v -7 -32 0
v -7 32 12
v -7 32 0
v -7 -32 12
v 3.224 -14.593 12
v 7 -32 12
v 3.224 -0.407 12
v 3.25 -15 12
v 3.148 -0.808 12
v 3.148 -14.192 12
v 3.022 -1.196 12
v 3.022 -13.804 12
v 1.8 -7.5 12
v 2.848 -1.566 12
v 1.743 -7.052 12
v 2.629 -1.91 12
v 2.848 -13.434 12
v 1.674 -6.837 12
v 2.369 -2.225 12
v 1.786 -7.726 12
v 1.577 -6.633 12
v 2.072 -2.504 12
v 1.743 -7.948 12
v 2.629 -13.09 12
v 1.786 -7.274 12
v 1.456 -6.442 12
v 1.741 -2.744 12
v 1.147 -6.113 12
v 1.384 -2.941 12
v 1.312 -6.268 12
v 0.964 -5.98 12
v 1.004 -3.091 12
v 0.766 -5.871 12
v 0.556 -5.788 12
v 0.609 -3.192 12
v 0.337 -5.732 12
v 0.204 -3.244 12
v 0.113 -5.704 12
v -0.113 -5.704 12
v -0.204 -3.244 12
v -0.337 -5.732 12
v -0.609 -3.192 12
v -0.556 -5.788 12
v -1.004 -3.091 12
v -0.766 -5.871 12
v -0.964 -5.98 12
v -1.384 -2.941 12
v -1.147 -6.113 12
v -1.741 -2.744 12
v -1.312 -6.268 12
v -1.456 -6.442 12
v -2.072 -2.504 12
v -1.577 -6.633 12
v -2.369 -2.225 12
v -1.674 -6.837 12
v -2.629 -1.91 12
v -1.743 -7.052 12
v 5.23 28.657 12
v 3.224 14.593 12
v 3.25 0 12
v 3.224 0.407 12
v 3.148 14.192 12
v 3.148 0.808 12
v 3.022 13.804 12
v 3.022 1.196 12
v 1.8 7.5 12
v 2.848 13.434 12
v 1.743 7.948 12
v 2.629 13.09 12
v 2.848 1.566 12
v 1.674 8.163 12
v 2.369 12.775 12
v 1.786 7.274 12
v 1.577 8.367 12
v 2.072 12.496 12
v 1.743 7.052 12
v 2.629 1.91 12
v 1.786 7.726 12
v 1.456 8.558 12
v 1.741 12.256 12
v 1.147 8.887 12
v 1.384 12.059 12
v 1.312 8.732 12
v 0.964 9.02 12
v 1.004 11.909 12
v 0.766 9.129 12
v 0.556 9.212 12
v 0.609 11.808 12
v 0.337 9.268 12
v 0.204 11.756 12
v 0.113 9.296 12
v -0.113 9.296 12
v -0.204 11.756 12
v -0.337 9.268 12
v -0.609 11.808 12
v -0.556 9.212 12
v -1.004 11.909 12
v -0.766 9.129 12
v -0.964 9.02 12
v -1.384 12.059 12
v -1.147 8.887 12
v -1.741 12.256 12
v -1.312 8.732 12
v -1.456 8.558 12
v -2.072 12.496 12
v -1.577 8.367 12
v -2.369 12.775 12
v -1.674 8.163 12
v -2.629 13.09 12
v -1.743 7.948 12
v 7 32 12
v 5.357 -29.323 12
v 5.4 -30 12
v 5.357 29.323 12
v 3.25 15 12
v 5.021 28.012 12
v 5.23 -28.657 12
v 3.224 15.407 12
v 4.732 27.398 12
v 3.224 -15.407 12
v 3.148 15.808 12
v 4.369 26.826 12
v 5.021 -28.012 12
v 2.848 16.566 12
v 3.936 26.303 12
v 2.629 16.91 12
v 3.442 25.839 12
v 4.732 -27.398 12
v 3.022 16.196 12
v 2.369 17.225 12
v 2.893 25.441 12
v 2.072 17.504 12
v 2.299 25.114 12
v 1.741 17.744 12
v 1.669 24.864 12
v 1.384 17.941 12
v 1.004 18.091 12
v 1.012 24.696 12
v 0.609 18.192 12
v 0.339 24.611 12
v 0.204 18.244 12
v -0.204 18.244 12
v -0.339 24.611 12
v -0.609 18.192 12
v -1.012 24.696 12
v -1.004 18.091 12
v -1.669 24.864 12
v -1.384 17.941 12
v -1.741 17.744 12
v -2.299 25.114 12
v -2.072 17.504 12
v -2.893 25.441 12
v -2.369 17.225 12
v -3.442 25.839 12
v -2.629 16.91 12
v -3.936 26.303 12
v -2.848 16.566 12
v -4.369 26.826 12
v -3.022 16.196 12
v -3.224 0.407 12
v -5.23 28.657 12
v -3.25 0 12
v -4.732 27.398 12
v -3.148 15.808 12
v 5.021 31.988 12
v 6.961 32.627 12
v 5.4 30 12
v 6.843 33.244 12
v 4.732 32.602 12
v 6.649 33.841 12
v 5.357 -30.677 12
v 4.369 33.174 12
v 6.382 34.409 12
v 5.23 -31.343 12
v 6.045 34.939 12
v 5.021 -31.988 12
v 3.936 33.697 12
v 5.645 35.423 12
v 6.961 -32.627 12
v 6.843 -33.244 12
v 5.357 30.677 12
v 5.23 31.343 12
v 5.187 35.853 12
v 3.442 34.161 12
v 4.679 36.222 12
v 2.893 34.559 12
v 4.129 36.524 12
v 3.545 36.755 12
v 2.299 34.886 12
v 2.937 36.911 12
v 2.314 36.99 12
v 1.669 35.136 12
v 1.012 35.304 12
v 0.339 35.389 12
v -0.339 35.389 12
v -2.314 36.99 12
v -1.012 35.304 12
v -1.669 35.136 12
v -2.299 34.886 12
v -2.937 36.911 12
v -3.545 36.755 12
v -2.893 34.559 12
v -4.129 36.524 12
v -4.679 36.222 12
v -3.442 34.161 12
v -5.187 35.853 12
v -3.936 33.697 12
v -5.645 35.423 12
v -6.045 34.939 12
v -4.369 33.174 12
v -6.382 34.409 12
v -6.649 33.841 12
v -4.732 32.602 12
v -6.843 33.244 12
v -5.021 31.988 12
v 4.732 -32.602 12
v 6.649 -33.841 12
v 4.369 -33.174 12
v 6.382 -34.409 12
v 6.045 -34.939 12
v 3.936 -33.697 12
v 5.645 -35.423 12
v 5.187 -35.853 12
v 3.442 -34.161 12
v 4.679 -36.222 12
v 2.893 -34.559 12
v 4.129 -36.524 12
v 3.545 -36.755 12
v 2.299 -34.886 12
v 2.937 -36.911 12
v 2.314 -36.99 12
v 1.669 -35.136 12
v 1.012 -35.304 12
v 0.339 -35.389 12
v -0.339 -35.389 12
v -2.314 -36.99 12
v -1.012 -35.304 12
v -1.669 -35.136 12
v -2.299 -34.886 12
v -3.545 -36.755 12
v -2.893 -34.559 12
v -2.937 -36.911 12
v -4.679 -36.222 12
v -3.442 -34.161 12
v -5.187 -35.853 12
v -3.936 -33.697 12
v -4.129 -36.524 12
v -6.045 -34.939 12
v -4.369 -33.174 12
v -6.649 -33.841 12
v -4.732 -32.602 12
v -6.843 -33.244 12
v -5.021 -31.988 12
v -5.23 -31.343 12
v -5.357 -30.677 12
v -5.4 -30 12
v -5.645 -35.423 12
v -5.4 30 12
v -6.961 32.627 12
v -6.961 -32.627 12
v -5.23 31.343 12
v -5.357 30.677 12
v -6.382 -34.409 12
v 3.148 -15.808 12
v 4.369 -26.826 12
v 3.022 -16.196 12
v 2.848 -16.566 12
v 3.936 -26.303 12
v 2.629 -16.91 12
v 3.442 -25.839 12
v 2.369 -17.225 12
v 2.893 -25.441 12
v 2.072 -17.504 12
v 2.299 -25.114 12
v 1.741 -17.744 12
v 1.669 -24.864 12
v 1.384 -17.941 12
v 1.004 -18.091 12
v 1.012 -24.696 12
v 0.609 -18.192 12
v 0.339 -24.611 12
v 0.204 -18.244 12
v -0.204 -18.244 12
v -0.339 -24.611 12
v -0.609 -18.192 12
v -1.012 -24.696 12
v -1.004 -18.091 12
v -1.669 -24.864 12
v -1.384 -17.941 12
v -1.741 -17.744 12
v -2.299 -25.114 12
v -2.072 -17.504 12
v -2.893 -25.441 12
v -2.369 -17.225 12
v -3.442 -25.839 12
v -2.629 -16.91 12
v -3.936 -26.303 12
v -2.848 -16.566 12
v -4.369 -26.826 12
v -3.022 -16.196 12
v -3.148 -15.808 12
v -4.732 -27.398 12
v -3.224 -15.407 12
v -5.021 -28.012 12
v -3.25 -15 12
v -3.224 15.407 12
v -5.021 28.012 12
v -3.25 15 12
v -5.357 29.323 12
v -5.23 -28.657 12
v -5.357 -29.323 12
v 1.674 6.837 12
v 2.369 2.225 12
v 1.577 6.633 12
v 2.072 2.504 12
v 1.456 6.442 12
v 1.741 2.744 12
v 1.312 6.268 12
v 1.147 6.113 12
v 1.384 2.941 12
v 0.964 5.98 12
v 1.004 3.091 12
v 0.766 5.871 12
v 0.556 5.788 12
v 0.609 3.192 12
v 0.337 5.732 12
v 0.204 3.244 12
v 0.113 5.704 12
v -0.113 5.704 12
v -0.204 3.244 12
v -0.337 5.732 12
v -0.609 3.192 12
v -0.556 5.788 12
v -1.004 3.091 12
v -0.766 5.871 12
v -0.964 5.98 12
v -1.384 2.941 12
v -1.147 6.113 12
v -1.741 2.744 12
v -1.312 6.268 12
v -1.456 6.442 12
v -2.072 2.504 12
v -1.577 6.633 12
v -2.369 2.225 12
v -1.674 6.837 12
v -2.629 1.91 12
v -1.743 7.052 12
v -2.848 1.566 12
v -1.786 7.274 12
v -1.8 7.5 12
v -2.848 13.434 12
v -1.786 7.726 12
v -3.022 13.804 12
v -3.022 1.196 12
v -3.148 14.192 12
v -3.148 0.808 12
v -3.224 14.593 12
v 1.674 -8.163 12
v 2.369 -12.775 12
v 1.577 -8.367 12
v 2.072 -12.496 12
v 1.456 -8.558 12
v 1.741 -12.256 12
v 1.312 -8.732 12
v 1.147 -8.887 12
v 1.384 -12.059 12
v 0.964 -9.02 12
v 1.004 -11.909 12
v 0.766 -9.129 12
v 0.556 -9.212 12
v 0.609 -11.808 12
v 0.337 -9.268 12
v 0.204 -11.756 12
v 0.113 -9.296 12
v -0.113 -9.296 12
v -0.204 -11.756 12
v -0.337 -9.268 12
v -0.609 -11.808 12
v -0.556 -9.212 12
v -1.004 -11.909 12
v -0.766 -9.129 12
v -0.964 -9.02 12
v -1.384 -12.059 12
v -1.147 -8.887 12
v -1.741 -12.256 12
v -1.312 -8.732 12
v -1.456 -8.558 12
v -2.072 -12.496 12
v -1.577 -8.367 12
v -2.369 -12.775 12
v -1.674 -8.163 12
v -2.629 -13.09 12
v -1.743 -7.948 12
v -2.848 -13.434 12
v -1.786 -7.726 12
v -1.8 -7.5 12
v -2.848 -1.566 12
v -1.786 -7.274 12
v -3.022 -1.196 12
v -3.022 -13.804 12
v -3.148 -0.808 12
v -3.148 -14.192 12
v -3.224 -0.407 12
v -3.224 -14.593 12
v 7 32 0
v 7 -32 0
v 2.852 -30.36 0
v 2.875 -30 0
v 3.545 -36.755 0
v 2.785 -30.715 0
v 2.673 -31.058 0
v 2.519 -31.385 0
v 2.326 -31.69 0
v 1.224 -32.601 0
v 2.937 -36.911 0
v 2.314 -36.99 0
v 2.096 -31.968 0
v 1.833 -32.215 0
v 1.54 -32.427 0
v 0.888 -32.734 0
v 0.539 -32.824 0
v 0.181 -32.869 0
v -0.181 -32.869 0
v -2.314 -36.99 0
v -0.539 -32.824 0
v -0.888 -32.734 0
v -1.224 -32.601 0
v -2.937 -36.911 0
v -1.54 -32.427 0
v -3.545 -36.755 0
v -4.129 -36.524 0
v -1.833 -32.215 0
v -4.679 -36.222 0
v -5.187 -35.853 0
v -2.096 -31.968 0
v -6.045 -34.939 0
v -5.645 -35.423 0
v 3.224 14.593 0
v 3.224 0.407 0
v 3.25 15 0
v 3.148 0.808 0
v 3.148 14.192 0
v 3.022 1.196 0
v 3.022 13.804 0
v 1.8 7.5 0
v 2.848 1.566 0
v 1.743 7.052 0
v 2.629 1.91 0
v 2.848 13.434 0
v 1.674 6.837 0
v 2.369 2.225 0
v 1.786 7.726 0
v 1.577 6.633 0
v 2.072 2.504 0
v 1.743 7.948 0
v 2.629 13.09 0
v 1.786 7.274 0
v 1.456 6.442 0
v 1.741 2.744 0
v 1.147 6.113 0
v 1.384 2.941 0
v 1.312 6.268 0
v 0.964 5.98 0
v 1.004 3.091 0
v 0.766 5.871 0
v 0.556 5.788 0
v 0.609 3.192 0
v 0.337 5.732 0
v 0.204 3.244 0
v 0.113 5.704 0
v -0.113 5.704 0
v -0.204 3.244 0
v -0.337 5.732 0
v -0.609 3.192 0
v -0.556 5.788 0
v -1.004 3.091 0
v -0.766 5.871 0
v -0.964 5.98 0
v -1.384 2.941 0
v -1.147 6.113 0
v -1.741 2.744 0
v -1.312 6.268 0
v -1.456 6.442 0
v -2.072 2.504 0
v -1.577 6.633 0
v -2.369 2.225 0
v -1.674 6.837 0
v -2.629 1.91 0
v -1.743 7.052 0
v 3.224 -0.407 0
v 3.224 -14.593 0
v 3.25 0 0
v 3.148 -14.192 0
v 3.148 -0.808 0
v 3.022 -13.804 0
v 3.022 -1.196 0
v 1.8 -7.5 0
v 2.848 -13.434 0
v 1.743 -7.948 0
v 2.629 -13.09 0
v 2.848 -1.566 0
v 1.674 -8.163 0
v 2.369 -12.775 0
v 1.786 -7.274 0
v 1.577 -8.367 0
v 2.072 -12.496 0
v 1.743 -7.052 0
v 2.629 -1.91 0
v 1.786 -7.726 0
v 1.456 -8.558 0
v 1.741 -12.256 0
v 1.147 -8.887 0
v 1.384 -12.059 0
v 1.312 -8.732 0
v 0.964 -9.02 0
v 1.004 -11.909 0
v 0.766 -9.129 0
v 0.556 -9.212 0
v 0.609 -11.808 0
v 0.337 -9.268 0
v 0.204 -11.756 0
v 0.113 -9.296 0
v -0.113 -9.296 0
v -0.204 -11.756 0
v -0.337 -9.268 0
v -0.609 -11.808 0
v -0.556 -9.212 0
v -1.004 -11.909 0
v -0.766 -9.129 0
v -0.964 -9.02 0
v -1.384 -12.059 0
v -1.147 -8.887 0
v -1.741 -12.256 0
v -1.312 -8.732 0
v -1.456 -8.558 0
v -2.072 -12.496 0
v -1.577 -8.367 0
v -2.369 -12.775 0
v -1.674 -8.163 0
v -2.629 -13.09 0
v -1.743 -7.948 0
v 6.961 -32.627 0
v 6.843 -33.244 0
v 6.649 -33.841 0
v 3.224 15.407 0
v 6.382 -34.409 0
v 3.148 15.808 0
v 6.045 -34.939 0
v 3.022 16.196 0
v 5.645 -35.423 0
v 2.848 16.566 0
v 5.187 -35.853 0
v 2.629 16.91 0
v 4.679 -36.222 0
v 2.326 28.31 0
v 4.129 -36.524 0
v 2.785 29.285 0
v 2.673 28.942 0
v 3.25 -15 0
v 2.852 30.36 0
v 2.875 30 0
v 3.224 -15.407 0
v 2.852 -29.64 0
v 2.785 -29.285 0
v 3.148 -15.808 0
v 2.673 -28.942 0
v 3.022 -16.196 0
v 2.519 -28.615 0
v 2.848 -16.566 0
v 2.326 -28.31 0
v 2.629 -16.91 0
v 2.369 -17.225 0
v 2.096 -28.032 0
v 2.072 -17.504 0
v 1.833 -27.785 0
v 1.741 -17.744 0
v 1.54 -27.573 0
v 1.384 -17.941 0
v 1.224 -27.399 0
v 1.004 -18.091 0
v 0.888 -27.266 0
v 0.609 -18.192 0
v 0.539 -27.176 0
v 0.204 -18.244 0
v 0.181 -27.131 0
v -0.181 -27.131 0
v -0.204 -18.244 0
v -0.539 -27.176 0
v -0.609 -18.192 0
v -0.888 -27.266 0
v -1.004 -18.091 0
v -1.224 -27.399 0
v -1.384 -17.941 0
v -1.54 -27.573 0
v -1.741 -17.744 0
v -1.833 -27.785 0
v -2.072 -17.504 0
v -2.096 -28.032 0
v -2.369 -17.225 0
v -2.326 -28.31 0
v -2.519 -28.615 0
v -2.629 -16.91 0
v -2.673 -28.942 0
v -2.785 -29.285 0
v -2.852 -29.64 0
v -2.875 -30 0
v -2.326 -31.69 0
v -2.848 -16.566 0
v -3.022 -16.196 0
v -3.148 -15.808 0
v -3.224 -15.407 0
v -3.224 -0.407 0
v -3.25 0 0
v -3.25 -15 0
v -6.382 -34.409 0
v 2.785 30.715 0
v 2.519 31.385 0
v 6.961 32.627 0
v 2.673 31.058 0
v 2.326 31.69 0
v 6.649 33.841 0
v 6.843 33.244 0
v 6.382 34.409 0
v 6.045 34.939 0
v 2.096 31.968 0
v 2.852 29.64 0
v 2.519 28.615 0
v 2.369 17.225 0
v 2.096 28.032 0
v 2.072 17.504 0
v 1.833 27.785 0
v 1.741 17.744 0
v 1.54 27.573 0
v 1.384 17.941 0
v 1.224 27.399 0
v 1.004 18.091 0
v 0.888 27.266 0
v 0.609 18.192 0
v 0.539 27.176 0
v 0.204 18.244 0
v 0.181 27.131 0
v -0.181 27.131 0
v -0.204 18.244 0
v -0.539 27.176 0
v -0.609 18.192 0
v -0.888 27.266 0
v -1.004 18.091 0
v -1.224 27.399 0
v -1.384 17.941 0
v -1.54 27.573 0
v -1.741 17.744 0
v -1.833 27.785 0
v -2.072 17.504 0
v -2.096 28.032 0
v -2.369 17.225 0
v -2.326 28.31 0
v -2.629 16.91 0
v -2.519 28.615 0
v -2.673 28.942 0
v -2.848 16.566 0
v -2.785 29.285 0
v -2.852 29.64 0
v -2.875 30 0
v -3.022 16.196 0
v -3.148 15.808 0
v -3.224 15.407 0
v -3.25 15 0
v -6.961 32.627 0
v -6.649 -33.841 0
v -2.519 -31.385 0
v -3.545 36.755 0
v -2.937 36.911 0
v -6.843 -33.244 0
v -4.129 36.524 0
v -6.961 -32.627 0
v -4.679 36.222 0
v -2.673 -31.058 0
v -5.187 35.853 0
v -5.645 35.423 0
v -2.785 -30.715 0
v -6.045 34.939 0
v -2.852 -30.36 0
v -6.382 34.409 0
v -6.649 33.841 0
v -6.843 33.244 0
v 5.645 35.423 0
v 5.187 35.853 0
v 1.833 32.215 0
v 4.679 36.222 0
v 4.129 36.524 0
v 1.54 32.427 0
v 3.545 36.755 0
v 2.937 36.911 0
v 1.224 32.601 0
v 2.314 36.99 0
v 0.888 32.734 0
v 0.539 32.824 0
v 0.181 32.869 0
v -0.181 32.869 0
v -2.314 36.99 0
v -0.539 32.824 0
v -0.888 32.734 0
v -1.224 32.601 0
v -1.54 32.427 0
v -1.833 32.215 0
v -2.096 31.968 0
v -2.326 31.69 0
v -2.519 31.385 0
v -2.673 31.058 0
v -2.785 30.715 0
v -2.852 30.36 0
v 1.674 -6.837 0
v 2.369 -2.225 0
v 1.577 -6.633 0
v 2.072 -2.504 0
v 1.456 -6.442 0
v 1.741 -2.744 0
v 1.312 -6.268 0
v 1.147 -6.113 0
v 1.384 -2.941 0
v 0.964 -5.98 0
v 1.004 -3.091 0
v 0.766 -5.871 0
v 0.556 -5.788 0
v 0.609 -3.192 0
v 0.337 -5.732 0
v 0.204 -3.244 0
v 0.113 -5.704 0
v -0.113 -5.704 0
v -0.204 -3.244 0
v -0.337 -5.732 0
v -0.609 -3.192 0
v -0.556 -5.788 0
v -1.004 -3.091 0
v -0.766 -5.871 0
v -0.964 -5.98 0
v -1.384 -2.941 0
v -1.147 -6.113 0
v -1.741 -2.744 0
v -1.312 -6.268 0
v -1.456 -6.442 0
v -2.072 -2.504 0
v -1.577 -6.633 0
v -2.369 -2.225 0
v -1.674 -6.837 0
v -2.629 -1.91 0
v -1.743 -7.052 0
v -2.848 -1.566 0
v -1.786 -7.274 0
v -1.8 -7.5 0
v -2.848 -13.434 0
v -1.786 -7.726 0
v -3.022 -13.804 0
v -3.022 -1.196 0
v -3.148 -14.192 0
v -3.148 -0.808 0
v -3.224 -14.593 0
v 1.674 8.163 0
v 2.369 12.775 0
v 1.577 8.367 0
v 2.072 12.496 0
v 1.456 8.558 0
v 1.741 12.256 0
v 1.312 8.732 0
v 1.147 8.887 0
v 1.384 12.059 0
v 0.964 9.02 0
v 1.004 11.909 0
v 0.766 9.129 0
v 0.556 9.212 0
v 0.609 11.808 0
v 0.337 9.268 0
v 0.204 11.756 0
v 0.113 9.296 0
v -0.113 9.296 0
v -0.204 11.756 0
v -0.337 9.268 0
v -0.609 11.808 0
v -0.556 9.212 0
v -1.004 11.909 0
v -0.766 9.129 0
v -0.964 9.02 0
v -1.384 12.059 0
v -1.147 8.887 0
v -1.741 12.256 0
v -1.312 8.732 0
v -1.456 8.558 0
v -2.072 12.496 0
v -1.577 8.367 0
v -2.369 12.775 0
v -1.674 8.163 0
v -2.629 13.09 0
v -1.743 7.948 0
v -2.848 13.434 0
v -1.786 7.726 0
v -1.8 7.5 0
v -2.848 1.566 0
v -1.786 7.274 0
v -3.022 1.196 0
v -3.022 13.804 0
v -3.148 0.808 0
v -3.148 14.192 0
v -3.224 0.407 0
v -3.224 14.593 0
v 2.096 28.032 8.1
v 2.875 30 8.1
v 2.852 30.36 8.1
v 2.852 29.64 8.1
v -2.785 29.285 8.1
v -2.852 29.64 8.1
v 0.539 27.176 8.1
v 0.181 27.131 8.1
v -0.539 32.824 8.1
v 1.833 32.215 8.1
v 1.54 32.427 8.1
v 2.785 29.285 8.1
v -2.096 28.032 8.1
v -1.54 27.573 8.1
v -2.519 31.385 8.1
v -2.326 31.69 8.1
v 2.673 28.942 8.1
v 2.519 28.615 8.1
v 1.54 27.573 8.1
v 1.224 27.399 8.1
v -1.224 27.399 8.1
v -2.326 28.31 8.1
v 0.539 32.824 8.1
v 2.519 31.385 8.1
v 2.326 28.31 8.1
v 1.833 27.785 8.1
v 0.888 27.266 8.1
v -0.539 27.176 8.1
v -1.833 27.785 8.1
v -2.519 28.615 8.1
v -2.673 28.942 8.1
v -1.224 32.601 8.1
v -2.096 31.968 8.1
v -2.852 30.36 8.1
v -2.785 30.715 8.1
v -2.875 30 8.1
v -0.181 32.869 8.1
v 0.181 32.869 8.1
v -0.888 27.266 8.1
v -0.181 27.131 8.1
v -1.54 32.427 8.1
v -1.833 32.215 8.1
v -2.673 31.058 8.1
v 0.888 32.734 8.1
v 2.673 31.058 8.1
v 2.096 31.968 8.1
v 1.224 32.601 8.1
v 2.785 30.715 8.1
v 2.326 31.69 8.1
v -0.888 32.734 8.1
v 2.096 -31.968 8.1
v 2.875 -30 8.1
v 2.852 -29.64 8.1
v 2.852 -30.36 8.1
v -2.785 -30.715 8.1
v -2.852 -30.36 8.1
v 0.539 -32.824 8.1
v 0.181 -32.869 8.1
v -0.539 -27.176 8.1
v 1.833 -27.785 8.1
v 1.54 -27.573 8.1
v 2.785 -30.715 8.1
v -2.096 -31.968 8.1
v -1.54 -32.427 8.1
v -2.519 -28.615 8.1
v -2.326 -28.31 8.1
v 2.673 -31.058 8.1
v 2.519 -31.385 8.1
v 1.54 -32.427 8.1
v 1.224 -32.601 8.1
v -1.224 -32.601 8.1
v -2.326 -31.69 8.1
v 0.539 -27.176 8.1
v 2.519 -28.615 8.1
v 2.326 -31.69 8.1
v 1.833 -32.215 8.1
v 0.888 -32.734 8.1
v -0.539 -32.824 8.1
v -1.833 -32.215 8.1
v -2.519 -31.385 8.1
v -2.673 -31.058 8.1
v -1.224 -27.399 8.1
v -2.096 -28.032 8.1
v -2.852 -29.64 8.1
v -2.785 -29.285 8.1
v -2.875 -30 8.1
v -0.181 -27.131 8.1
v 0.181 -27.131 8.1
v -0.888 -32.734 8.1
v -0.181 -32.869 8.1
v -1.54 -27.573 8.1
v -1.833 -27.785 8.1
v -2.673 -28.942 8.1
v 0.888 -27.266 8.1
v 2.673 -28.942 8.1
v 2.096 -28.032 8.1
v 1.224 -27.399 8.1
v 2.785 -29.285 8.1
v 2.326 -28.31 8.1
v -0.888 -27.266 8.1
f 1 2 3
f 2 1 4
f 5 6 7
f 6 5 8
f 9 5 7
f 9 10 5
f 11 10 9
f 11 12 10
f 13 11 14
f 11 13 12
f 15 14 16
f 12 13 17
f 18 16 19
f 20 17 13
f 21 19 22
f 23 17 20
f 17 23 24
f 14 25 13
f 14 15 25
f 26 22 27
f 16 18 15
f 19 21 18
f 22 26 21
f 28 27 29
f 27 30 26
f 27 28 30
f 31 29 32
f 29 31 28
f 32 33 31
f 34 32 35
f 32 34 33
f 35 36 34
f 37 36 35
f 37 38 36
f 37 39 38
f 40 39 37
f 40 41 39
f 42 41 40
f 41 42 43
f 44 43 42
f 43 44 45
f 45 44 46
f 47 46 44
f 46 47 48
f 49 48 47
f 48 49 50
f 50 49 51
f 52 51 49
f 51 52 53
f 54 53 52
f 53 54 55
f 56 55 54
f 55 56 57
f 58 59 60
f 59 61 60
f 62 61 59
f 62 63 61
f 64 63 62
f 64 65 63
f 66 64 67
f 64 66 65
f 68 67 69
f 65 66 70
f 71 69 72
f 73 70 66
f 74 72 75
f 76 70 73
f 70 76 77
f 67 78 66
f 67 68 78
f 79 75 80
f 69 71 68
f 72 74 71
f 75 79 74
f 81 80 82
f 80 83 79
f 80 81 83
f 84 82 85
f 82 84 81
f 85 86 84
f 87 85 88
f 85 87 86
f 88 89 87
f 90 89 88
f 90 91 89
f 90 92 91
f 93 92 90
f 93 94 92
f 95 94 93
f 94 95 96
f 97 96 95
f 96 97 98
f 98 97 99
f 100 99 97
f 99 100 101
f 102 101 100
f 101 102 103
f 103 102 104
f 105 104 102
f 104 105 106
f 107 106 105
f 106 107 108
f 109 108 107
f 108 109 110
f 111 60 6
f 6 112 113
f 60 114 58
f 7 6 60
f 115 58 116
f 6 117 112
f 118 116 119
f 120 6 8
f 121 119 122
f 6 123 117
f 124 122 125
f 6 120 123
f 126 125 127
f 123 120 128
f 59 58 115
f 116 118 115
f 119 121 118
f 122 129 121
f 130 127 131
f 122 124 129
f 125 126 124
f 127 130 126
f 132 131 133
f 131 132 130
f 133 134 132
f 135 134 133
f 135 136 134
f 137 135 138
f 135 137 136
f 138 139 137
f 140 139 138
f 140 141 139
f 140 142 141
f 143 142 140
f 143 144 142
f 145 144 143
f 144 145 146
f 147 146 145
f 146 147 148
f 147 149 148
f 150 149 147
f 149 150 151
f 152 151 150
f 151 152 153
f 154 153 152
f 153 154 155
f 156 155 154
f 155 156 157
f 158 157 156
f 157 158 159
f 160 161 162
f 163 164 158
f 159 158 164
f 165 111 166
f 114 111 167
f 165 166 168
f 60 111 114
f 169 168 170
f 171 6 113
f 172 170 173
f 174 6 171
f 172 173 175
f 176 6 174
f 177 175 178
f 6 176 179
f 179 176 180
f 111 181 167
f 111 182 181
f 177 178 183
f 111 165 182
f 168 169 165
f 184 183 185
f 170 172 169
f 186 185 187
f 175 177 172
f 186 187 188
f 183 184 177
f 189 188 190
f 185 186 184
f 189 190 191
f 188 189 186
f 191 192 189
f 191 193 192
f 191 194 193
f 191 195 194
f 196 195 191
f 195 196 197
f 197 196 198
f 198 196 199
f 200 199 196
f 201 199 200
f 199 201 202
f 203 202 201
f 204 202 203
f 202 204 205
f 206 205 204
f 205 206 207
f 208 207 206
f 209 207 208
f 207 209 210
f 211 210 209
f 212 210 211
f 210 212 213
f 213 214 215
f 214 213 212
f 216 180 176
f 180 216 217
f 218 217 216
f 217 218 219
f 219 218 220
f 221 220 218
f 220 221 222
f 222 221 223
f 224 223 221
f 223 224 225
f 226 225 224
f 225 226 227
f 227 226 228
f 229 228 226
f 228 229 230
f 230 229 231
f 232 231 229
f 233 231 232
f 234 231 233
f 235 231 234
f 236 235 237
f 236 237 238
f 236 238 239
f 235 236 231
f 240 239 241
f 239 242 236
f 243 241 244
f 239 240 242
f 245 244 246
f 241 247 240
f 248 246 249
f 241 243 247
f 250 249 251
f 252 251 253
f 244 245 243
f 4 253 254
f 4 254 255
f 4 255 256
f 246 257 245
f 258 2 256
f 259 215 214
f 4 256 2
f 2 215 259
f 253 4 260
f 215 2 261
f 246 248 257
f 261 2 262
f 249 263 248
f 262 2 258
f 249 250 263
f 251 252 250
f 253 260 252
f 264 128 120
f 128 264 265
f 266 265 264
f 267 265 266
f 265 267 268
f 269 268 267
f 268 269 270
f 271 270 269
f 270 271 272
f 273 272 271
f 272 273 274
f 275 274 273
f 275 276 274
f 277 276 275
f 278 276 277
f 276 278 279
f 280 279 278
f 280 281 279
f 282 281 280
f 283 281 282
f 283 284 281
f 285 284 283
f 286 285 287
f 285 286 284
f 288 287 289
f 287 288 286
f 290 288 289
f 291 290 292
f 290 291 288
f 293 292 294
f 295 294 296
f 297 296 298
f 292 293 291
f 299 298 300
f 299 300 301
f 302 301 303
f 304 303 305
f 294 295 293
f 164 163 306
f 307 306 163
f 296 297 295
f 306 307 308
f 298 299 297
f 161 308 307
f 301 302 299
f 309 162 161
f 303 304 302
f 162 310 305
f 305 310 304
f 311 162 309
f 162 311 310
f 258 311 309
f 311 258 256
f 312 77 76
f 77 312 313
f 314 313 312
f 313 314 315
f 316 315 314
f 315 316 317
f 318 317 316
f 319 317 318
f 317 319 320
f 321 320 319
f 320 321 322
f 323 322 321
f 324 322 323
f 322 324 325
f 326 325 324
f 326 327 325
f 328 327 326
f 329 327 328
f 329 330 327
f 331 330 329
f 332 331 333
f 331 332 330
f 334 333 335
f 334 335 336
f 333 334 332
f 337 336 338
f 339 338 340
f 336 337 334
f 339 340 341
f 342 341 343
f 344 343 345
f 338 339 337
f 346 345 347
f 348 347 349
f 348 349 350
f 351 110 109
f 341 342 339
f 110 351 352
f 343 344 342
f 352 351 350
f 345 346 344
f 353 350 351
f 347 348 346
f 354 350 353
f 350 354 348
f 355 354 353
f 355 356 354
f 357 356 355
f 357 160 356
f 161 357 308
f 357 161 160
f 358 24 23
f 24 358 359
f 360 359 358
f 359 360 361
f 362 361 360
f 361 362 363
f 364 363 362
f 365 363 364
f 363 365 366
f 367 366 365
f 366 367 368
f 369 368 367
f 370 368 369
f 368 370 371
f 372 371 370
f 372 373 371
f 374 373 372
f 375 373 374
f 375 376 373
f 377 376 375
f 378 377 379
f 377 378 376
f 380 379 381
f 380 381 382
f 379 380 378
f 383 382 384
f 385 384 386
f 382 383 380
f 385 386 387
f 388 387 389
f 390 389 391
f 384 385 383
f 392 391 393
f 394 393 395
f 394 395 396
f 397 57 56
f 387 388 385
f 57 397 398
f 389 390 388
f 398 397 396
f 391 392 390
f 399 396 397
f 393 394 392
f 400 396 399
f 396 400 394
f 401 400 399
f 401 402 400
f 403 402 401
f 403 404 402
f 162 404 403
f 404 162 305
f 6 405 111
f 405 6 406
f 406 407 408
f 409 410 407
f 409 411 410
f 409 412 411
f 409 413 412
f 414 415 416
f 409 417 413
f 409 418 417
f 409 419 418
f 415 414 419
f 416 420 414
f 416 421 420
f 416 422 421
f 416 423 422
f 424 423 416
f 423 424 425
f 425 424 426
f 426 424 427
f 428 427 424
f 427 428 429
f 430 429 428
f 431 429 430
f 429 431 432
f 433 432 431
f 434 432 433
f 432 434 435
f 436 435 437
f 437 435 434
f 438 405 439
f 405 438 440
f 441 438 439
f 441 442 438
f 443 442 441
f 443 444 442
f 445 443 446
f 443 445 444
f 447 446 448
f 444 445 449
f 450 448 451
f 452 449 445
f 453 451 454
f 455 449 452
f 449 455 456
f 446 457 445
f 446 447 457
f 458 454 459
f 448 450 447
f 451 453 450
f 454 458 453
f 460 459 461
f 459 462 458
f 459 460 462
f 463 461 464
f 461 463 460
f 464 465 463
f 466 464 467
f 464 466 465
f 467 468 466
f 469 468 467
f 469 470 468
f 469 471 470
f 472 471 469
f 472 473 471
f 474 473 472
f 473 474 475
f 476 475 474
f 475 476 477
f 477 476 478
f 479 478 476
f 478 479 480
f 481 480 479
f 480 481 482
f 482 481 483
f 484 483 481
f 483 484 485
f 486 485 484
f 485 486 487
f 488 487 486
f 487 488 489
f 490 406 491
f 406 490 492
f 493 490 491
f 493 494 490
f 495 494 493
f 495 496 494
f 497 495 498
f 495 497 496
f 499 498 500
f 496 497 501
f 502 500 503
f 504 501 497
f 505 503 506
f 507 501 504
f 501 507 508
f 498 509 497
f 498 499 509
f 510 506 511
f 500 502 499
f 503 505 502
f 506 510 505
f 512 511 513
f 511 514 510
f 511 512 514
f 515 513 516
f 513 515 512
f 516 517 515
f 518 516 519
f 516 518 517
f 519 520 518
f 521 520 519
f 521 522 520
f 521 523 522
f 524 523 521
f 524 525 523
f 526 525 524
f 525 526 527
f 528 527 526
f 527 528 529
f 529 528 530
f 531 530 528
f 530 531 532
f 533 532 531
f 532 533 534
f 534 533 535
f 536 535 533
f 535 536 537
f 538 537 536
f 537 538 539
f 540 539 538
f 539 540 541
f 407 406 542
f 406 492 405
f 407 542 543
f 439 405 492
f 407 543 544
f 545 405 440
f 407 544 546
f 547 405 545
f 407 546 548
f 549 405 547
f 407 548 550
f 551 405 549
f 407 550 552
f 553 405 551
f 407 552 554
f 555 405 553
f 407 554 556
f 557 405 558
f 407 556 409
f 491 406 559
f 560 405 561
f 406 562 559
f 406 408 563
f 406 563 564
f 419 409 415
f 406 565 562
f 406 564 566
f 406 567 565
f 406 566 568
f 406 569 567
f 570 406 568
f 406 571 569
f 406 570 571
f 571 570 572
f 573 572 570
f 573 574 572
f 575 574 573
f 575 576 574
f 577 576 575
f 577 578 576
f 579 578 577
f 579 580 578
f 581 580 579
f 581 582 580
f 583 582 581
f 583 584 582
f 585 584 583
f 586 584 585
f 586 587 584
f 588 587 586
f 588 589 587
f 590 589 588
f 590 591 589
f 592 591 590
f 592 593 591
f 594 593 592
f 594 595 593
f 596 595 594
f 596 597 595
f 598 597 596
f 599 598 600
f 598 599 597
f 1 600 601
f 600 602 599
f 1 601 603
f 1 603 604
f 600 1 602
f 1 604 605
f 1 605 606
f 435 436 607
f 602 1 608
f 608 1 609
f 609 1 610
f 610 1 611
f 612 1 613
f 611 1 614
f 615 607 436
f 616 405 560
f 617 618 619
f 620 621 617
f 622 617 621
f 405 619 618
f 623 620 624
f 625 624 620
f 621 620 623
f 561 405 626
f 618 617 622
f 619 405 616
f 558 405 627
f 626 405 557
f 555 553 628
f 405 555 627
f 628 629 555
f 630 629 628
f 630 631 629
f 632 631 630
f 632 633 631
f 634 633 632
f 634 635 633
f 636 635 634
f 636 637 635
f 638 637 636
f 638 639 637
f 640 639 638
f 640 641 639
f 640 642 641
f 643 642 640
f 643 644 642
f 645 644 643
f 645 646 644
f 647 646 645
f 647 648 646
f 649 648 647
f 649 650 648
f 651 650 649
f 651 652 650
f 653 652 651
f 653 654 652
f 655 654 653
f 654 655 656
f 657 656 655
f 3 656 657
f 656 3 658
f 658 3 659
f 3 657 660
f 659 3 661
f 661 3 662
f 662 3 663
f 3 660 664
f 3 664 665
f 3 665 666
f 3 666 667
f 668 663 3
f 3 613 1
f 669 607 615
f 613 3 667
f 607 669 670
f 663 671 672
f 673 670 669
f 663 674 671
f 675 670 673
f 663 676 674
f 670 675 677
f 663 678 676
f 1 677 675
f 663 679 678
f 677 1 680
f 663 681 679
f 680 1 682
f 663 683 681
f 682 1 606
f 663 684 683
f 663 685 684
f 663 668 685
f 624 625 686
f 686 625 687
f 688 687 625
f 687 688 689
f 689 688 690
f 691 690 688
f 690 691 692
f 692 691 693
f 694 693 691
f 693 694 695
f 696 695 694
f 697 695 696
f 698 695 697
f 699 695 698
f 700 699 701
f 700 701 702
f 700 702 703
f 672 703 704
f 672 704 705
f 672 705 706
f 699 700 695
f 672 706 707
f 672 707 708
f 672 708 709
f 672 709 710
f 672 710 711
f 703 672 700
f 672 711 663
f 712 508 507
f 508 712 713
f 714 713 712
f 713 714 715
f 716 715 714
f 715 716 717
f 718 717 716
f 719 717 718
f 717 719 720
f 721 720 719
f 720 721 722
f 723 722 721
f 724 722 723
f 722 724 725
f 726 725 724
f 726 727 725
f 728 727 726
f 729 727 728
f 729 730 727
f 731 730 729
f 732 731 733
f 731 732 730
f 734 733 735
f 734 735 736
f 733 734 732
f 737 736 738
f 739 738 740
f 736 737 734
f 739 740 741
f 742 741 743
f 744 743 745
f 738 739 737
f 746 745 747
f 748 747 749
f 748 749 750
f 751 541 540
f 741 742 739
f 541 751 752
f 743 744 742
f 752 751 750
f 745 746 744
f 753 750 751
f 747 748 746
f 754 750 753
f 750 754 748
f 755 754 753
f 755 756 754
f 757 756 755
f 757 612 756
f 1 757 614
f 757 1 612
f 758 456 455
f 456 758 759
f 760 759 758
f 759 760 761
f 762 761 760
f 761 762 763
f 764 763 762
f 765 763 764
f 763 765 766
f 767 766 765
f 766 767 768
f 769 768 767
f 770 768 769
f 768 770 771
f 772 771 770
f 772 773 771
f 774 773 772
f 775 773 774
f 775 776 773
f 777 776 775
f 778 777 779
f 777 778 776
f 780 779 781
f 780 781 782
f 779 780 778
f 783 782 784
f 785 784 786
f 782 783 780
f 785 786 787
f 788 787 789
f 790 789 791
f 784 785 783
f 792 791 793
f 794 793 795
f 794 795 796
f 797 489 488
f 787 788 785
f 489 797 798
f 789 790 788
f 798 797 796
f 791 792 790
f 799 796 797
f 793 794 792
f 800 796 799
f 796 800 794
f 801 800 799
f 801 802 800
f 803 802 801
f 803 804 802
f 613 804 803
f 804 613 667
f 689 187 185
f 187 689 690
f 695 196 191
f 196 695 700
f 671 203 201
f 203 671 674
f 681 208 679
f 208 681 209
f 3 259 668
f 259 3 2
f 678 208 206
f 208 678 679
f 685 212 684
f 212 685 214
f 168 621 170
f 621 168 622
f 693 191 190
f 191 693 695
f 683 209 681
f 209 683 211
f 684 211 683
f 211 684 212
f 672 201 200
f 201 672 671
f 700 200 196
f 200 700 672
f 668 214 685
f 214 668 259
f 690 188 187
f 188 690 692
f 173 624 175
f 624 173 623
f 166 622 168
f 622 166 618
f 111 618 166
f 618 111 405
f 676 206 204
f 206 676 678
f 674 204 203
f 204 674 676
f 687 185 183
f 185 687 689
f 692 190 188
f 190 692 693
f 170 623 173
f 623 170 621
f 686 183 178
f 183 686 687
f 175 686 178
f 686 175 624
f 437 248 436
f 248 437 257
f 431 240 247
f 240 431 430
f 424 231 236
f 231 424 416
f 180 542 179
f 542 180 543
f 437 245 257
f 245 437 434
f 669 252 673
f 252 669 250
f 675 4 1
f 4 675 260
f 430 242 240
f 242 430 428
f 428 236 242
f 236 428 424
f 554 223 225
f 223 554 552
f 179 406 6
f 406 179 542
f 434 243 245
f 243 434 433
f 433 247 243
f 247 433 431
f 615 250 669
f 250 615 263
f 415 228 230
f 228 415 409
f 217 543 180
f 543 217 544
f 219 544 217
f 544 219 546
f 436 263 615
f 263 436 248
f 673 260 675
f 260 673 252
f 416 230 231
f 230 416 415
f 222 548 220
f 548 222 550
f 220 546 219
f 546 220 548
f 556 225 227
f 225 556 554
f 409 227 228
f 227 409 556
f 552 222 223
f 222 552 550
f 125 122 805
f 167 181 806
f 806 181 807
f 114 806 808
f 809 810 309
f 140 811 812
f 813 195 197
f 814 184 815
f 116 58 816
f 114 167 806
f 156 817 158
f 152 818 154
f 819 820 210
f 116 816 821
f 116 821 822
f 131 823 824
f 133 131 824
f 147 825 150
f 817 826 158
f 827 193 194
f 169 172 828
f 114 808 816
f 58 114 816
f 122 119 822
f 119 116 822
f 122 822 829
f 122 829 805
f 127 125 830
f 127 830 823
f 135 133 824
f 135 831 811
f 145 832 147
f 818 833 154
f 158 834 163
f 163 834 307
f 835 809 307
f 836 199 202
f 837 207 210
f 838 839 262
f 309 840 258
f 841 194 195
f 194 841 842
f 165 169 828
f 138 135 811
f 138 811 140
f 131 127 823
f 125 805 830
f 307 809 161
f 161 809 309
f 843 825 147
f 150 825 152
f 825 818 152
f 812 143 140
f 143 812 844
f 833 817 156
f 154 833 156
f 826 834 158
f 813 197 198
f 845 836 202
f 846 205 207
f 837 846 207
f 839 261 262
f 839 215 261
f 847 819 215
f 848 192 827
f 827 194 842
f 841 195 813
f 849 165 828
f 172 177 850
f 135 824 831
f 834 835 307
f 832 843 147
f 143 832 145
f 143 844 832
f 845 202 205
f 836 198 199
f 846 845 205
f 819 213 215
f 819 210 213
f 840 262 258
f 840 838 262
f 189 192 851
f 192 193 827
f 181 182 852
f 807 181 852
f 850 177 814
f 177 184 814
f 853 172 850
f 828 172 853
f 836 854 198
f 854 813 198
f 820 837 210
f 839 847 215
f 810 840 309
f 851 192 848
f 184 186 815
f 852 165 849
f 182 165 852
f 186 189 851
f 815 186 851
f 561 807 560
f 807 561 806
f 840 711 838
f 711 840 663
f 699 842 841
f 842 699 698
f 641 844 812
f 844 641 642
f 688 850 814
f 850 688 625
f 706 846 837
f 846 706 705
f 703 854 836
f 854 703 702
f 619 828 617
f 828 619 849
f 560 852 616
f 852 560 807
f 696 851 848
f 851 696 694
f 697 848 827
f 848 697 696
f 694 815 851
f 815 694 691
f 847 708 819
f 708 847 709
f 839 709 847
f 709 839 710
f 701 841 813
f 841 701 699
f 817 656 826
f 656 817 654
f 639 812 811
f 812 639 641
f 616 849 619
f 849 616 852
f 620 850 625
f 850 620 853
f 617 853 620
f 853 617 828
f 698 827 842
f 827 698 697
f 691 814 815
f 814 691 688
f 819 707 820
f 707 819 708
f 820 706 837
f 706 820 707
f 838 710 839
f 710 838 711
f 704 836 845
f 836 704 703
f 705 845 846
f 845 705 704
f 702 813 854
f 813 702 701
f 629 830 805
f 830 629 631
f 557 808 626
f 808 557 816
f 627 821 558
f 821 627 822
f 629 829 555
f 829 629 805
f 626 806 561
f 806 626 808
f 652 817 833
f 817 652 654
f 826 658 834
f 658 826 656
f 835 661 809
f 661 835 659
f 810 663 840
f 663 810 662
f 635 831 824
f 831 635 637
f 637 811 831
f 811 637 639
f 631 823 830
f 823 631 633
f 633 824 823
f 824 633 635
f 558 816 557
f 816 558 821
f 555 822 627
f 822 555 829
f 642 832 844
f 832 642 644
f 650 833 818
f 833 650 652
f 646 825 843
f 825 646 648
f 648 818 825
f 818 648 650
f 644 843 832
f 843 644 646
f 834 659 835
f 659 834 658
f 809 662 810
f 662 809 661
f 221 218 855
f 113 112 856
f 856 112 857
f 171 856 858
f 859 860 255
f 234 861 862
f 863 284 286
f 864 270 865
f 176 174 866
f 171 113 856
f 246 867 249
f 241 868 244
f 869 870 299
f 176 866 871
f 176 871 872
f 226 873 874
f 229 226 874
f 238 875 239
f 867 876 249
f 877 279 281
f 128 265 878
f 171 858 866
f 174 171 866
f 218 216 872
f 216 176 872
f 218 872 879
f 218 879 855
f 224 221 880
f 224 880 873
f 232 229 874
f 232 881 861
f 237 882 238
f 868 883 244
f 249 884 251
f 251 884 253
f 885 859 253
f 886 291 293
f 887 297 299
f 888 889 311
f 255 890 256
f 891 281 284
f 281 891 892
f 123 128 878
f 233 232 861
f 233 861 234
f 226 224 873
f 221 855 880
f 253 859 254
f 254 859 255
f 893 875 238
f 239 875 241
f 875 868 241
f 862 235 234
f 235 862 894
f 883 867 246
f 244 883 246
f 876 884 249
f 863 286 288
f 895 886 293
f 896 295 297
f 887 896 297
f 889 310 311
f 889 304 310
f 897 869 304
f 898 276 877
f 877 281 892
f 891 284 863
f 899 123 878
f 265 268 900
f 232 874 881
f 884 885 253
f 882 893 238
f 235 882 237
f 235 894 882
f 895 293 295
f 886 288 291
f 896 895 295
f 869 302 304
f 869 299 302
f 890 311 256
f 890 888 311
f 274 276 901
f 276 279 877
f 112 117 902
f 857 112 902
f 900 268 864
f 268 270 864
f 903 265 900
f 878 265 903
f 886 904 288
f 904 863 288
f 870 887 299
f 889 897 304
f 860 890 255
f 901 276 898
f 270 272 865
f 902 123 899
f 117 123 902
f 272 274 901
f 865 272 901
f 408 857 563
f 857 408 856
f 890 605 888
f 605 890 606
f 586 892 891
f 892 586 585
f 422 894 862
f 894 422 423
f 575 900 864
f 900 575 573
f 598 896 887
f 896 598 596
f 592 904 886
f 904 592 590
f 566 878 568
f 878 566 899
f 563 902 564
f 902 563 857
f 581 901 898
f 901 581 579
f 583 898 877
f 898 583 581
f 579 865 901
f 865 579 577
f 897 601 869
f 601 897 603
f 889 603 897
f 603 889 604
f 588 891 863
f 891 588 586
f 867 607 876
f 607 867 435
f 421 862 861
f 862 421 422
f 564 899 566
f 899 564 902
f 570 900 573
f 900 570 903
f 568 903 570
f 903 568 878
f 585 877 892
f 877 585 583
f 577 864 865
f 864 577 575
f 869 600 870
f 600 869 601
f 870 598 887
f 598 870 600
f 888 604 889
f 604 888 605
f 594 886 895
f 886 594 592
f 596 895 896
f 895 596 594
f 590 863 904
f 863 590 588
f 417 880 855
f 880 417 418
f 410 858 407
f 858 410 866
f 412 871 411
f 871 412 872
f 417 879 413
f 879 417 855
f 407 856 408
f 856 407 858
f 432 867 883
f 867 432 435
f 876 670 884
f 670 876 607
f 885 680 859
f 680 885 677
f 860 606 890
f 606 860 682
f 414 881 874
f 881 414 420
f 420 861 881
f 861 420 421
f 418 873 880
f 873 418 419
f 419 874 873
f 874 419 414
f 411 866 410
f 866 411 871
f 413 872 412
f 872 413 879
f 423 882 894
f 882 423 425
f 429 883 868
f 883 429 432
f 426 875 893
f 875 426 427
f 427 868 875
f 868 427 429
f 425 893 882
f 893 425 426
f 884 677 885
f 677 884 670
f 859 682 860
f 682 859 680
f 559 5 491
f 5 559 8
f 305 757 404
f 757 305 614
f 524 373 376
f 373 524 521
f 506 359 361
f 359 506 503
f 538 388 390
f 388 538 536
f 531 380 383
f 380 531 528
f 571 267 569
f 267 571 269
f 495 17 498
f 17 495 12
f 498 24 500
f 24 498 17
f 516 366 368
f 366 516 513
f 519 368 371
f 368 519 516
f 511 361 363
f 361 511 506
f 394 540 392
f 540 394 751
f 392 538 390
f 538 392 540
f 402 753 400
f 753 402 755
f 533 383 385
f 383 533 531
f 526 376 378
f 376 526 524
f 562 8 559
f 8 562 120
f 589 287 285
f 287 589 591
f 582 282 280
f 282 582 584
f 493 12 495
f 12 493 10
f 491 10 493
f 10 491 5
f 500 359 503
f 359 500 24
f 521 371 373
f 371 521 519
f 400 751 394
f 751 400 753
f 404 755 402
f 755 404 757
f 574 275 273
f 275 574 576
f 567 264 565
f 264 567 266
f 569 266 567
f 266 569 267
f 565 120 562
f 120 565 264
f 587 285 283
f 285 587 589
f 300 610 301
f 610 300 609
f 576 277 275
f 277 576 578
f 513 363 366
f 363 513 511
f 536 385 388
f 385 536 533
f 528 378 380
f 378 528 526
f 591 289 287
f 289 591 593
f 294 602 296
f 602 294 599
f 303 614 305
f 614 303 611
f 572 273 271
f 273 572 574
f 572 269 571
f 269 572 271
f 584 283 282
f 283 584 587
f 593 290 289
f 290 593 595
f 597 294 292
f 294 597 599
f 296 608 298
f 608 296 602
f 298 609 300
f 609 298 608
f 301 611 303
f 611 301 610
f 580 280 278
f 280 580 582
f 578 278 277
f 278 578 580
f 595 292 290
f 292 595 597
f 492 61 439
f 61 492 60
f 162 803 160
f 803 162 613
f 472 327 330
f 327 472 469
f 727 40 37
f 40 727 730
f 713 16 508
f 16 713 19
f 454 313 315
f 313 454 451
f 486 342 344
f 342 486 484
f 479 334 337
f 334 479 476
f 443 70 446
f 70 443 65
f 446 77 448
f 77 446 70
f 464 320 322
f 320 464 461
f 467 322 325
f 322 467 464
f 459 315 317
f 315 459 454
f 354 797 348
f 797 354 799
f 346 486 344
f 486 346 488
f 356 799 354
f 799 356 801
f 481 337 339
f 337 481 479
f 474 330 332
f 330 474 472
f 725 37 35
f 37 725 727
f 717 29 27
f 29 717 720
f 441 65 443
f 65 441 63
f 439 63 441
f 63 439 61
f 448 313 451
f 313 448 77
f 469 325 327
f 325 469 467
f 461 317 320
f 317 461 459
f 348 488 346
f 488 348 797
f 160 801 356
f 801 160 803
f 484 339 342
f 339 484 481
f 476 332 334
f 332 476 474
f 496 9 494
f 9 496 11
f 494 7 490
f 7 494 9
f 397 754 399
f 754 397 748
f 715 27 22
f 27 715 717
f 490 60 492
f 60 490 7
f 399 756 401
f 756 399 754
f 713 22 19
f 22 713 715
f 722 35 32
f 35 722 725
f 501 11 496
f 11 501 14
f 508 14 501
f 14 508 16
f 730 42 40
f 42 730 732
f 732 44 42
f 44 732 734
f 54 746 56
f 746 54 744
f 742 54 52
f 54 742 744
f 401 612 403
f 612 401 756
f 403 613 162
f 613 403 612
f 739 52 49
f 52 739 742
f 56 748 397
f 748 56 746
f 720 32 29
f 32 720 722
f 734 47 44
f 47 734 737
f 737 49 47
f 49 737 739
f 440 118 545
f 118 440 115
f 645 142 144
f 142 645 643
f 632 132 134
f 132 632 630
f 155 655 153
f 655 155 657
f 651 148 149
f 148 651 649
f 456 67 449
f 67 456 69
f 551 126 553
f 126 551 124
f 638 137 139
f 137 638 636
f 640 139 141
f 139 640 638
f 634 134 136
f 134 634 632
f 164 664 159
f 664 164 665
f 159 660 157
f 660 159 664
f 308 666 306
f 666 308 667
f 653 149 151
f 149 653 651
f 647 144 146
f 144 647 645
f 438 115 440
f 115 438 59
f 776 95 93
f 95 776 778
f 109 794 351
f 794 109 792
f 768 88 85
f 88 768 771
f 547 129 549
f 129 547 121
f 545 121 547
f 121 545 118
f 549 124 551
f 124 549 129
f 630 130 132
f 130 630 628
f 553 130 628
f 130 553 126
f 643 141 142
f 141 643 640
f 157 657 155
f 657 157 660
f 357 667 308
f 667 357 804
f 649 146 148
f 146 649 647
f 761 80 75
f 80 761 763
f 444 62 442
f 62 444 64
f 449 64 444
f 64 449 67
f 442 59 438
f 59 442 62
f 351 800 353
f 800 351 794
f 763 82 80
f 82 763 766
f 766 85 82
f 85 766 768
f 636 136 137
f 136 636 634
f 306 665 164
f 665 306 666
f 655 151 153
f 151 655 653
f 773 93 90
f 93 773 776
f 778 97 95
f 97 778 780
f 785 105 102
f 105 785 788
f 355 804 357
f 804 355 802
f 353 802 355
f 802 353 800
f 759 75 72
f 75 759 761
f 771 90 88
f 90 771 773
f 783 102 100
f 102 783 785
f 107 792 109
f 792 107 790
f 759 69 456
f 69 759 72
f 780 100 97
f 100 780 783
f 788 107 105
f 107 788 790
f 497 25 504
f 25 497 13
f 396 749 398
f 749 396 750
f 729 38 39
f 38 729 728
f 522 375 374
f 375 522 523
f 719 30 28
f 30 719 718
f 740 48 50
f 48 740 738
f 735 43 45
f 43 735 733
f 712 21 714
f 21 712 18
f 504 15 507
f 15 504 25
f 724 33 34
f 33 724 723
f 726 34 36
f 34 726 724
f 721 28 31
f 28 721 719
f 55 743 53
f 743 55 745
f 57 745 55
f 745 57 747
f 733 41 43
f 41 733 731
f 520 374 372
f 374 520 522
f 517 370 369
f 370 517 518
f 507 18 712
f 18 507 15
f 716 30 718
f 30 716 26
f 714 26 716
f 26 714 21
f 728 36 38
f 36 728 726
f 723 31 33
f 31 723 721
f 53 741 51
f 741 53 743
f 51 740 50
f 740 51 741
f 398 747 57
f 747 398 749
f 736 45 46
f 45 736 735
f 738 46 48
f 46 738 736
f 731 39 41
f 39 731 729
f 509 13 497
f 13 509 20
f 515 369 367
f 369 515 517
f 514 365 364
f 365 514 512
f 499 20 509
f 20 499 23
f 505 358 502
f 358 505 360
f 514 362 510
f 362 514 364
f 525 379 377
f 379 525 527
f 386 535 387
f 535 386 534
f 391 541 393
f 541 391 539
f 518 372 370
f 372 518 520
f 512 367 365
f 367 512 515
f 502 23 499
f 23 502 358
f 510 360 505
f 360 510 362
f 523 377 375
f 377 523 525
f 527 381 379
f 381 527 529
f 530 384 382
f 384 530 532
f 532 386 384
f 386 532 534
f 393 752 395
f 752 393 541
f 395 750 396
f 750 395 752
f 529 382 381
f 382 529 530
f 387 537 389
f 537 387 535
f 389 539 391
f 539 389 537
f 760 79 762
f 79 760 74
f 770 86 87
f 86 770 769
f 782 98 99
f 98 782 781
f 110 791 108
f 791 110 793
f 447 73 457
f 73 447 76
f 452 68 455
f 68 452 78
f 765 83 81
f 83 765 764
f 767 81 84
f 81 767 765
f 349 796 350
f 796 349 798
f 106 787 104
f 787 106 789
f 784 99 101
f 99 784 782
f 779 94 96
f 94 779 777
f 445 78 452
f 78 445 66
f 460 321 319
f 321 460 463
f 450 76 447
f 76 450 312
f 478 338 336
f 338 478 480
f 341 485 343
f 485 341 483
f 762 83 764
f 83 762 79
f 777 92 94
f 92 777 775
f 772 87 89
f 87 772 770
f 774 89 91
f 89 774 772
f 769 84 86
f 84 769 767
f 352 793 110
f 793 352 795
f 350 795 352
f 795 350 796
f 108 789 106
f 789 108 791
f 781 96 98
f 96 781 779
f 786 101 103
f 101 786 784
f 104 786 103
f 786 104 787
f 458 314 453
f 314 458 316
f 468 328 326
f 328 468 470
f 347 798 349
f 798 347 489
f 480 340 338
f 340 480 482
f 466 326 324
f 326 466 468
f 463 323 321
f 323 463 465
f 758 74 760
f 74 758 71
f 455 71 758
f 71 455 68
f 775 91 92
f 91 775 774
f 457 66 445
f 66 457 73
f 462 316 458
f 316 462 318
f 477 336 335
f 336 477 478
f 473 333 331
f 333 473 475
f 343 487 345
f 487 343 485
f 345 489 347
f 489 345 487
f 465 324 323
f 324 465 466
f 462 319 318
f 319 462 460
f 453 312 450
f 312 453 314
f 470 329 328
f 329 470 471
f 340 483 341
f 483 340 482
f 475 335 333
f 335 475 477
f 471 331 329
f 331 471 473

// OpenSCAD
$fn = 50;


difference() {
	union() {
		hull() {
			translate(v = [-2.0000000000, 17.0000000000, 0]) {
				cylinder(h = 12, r = 5);
			}
			translate(v = [2.0000000000, 17.0000000000, 0]) {
				cylinder(h = 12, r = 5);
			}
			translate(v = [-2.0000000000, -17.0000000000, 0]) {
				cylinder(h = 12, r = 5);
			}
			translate(v = [2.0000000000, -17.0000000000, 0]) {
				cylinder(h = 12, r = 5);
			}
		}
		translate(v = [0.0000000000, 22.5000000000, 0]) {
			hull() {
				translate(v = [-2.0000000000, 9.5000000000, 0]) {
					cylinder(h = 12, r = 5);
				}
				translate(v = [2.0000000000, 9.5000000000, 0]) {
					cylinder(h = 12, r = 5);
				}
				translate(v = [-2.0000000000, -9.5000000000, 0]) {
					cylinder(h = 12, r = 5);
				}
				translate(v = [2.0000000000, -9.5000000000, 0]) {
					cylinder(h = 12, r = 5);
				}
			}
		}
		translate(v = [0.0000000000, 22.5000000000, 0]) {
			hull() {
				translate(v = [-2.0000000000, 9.5000000000, 0]) {
					cylinder(h = 12, r = 5);
				}
				translate(v = [2.0000000000, 9.5000000000, 0]) {
					cylinder(h = 12, r = 5);
				}
				translate(v = [-2.0000000000, -9.5000000000, 0]) {
					cylinder(h = 12, r = 5);
				}
				translate(v = [2.0000000000, -9.5000000000, 0]) {
					cylinder(h = 12, r = 5);
				}
			}
		}
		translate(v = [0.0000000000, -22.5000000000, 0]) {
			hull() {
				translate(v = [-2.0000000000, 9.5000000000, 0]) {
					cylinder(h = 12, r = 5);
				}
				translate(v = [2.0000000000, 9.5000000000, 0]) {
					cylinder(h = 12, r = 5);
				}
				translate(v = [-2.0000000000, -9.5000000000, 0]) {
					cylinder(h = 12, r = 5);
				}
				translate(v = [2.0000000000, -9.5000000000, 0]) {
					cylinder(h = 12, r = 5);
				}
			}
		}
		translate(v = [0.0000000000, -22.5000000000, 0]) {
			hull() {
				translate(v = [-2.0000000000, 9.5000000000, 0]) {
					cylinder(h = 12, r = 5);
				}
				translate(v = [2.0000000000, 9.5000000000, 0]) {
					cylinder(h = 12, r = 5);
				}
				translate(v = [-2.0000000000, -9.5000000000, 0]) {
					cylinder(h = 12, r = 5);
				}
				translate(v = [2.0000000000, -9.5000000000, 0]) {
					cylinder(h = 12, r = 5);
				}
			}
		}
	}
	union() {
		translate(v = [0.0000000000, 30.0000000000, 12]) {
			rotate(a = [0, 0, 0]) {
				difference() {
					union() {
						#translate(v = [0, 0, -12.0000000000]) {
							cylinder(h = 12, r = 2.6000000000);
						}
						#translate(v = [0, 0, -3.9000000000]) {
							cylinder(h = 3.9000000000, r1 = 2.8750000000, r2 = 5.4000000000);
						}
						#translate(v = [0, 0, -12.0000000000]) {
							cylinder(h = 12, r = 2.8750000000);
						}
						#translate(v = [0, 0, -12.0000000000]) {
							cylinder(h = 12, r = 2.6000000000);
						}
					}
					union();
				}
			}
		}
		translate(v = [0.0000000000, 30.0000000000, 12]) {
			rotate(a = [0, 0, 0]) {
				difference() {
					union() {
						#translate(v = [0, 0, -12.0000000000]) {
							cylinder(h = 12, r = 2.6000000000);
						}
						#translate(v = [0, 0, -3.9000000000]) {
							cylinder(h = 3.9000000000, r1 = 2.8750000000, r2 = 5.4000000000);
						}
						#translate(v = [0, 0, -12.0000000000]) {
							cylinder(h = 12, r = 2.8750000000);
						}
						#translate(v = [0, 0, -12.0000000000]) {
							cylinder(h = 12, r = 2.6000000000);
						}
					}
					union();
				}
			}
		}
		translate(v = [0.0000000000, -30.0000000000, 12]) {
			rotate(a = [0, 0, 0]) {
				difference() {
					union() {
						#translate(v = [0, 0, -12.0000000000]) {
							cylinder(h = 12, r = 2.6000000000);
						}
						#translate(v = [0, 0, -3.9000000000]) {
							cylinder(h = 3.9000000000, r1 = 2.8750000000, r2 = 5.4000000000);
						}
						#translate(v = [0, 0, -12.0000000000]) {
							cylinder(h = 12, r = 2.8750000000);
						}
						#translate(v = [0, 0, -12.0000000000]) {
							cylinder(h = 12, r = 2.6000000000);
						}
					}
					union();
				}
			}
		}
		translate(v = [0.0000000000, -30.0000000000, 12]) {
			rotate(a = [0, 0, 0]) {
				difference() {
					union() {
						#translate(v = [0, 0, -12.0000000000]) {
							cylinder(h = 12, r = 2.6000000000);
						}
						#translate(v = [0, 0, -3.9000000000]) {
							cylinder(h = 3.9000000000, r1 = 2.8750000000, r2 = 5.4000000000);
						}
						#translate(v = [0, 0, -12.0000000000]) {
							cylinder(h = 12, r = 2.8750000000);
						}
						#translate(v = [0, 0, -12.0000000000]) {
							cylinder(h = 12, r = 2.6000000000);
						}
					}
					union();
				}
			}
		}
		translate(v = [0.0000000000, -15.0000000000, 0]) {
			translate(v = [0, 0, -100]) {
				cylinder(h = 200, r = 3.2500000000);
			}
		}
		translate(v = [0, 0, -100]) {
			cylinder(h = 200, r = 3.2500000000);
		}
		translate(v = [0.0000000000, 15.0000000000, 0]) {
			translate(v = [0, 0, -100]) {
				cylinder(h = 200, r = 3.2500000000);
			}
		}
		translate(v = [0.0000000000, -15.0000000000, 0]) {
			translate(v = [0, 0, -100]) {
				cylinder(h = 200, r = 1.8000000000);
			}
		}
		translate(v = [0.0000000000, -7.5000000000, 0]) {
			translate(v = [0, 0, -100]) {
				cylinder(h = 200, r = 1.8000000000);
			}
		}
		translate(v = [0, 0, -100]) {
			cylinder(h = 200, r = 1.8000000000);
		}
		translate(v = [0.0000000000, 7.5000000000, 0]) {
			translate(v = [0, 0, -100]) {
				cylinder(h = 200, r = 1.8000000000);
			}
		}
		translate(v = [0.0000000000, 15.0000000000, 0]) {
			translate(v = [0, 0, -100]) {
				cylinder(h = 200, r = 1.8000000000);
			}
		}
	}
}
